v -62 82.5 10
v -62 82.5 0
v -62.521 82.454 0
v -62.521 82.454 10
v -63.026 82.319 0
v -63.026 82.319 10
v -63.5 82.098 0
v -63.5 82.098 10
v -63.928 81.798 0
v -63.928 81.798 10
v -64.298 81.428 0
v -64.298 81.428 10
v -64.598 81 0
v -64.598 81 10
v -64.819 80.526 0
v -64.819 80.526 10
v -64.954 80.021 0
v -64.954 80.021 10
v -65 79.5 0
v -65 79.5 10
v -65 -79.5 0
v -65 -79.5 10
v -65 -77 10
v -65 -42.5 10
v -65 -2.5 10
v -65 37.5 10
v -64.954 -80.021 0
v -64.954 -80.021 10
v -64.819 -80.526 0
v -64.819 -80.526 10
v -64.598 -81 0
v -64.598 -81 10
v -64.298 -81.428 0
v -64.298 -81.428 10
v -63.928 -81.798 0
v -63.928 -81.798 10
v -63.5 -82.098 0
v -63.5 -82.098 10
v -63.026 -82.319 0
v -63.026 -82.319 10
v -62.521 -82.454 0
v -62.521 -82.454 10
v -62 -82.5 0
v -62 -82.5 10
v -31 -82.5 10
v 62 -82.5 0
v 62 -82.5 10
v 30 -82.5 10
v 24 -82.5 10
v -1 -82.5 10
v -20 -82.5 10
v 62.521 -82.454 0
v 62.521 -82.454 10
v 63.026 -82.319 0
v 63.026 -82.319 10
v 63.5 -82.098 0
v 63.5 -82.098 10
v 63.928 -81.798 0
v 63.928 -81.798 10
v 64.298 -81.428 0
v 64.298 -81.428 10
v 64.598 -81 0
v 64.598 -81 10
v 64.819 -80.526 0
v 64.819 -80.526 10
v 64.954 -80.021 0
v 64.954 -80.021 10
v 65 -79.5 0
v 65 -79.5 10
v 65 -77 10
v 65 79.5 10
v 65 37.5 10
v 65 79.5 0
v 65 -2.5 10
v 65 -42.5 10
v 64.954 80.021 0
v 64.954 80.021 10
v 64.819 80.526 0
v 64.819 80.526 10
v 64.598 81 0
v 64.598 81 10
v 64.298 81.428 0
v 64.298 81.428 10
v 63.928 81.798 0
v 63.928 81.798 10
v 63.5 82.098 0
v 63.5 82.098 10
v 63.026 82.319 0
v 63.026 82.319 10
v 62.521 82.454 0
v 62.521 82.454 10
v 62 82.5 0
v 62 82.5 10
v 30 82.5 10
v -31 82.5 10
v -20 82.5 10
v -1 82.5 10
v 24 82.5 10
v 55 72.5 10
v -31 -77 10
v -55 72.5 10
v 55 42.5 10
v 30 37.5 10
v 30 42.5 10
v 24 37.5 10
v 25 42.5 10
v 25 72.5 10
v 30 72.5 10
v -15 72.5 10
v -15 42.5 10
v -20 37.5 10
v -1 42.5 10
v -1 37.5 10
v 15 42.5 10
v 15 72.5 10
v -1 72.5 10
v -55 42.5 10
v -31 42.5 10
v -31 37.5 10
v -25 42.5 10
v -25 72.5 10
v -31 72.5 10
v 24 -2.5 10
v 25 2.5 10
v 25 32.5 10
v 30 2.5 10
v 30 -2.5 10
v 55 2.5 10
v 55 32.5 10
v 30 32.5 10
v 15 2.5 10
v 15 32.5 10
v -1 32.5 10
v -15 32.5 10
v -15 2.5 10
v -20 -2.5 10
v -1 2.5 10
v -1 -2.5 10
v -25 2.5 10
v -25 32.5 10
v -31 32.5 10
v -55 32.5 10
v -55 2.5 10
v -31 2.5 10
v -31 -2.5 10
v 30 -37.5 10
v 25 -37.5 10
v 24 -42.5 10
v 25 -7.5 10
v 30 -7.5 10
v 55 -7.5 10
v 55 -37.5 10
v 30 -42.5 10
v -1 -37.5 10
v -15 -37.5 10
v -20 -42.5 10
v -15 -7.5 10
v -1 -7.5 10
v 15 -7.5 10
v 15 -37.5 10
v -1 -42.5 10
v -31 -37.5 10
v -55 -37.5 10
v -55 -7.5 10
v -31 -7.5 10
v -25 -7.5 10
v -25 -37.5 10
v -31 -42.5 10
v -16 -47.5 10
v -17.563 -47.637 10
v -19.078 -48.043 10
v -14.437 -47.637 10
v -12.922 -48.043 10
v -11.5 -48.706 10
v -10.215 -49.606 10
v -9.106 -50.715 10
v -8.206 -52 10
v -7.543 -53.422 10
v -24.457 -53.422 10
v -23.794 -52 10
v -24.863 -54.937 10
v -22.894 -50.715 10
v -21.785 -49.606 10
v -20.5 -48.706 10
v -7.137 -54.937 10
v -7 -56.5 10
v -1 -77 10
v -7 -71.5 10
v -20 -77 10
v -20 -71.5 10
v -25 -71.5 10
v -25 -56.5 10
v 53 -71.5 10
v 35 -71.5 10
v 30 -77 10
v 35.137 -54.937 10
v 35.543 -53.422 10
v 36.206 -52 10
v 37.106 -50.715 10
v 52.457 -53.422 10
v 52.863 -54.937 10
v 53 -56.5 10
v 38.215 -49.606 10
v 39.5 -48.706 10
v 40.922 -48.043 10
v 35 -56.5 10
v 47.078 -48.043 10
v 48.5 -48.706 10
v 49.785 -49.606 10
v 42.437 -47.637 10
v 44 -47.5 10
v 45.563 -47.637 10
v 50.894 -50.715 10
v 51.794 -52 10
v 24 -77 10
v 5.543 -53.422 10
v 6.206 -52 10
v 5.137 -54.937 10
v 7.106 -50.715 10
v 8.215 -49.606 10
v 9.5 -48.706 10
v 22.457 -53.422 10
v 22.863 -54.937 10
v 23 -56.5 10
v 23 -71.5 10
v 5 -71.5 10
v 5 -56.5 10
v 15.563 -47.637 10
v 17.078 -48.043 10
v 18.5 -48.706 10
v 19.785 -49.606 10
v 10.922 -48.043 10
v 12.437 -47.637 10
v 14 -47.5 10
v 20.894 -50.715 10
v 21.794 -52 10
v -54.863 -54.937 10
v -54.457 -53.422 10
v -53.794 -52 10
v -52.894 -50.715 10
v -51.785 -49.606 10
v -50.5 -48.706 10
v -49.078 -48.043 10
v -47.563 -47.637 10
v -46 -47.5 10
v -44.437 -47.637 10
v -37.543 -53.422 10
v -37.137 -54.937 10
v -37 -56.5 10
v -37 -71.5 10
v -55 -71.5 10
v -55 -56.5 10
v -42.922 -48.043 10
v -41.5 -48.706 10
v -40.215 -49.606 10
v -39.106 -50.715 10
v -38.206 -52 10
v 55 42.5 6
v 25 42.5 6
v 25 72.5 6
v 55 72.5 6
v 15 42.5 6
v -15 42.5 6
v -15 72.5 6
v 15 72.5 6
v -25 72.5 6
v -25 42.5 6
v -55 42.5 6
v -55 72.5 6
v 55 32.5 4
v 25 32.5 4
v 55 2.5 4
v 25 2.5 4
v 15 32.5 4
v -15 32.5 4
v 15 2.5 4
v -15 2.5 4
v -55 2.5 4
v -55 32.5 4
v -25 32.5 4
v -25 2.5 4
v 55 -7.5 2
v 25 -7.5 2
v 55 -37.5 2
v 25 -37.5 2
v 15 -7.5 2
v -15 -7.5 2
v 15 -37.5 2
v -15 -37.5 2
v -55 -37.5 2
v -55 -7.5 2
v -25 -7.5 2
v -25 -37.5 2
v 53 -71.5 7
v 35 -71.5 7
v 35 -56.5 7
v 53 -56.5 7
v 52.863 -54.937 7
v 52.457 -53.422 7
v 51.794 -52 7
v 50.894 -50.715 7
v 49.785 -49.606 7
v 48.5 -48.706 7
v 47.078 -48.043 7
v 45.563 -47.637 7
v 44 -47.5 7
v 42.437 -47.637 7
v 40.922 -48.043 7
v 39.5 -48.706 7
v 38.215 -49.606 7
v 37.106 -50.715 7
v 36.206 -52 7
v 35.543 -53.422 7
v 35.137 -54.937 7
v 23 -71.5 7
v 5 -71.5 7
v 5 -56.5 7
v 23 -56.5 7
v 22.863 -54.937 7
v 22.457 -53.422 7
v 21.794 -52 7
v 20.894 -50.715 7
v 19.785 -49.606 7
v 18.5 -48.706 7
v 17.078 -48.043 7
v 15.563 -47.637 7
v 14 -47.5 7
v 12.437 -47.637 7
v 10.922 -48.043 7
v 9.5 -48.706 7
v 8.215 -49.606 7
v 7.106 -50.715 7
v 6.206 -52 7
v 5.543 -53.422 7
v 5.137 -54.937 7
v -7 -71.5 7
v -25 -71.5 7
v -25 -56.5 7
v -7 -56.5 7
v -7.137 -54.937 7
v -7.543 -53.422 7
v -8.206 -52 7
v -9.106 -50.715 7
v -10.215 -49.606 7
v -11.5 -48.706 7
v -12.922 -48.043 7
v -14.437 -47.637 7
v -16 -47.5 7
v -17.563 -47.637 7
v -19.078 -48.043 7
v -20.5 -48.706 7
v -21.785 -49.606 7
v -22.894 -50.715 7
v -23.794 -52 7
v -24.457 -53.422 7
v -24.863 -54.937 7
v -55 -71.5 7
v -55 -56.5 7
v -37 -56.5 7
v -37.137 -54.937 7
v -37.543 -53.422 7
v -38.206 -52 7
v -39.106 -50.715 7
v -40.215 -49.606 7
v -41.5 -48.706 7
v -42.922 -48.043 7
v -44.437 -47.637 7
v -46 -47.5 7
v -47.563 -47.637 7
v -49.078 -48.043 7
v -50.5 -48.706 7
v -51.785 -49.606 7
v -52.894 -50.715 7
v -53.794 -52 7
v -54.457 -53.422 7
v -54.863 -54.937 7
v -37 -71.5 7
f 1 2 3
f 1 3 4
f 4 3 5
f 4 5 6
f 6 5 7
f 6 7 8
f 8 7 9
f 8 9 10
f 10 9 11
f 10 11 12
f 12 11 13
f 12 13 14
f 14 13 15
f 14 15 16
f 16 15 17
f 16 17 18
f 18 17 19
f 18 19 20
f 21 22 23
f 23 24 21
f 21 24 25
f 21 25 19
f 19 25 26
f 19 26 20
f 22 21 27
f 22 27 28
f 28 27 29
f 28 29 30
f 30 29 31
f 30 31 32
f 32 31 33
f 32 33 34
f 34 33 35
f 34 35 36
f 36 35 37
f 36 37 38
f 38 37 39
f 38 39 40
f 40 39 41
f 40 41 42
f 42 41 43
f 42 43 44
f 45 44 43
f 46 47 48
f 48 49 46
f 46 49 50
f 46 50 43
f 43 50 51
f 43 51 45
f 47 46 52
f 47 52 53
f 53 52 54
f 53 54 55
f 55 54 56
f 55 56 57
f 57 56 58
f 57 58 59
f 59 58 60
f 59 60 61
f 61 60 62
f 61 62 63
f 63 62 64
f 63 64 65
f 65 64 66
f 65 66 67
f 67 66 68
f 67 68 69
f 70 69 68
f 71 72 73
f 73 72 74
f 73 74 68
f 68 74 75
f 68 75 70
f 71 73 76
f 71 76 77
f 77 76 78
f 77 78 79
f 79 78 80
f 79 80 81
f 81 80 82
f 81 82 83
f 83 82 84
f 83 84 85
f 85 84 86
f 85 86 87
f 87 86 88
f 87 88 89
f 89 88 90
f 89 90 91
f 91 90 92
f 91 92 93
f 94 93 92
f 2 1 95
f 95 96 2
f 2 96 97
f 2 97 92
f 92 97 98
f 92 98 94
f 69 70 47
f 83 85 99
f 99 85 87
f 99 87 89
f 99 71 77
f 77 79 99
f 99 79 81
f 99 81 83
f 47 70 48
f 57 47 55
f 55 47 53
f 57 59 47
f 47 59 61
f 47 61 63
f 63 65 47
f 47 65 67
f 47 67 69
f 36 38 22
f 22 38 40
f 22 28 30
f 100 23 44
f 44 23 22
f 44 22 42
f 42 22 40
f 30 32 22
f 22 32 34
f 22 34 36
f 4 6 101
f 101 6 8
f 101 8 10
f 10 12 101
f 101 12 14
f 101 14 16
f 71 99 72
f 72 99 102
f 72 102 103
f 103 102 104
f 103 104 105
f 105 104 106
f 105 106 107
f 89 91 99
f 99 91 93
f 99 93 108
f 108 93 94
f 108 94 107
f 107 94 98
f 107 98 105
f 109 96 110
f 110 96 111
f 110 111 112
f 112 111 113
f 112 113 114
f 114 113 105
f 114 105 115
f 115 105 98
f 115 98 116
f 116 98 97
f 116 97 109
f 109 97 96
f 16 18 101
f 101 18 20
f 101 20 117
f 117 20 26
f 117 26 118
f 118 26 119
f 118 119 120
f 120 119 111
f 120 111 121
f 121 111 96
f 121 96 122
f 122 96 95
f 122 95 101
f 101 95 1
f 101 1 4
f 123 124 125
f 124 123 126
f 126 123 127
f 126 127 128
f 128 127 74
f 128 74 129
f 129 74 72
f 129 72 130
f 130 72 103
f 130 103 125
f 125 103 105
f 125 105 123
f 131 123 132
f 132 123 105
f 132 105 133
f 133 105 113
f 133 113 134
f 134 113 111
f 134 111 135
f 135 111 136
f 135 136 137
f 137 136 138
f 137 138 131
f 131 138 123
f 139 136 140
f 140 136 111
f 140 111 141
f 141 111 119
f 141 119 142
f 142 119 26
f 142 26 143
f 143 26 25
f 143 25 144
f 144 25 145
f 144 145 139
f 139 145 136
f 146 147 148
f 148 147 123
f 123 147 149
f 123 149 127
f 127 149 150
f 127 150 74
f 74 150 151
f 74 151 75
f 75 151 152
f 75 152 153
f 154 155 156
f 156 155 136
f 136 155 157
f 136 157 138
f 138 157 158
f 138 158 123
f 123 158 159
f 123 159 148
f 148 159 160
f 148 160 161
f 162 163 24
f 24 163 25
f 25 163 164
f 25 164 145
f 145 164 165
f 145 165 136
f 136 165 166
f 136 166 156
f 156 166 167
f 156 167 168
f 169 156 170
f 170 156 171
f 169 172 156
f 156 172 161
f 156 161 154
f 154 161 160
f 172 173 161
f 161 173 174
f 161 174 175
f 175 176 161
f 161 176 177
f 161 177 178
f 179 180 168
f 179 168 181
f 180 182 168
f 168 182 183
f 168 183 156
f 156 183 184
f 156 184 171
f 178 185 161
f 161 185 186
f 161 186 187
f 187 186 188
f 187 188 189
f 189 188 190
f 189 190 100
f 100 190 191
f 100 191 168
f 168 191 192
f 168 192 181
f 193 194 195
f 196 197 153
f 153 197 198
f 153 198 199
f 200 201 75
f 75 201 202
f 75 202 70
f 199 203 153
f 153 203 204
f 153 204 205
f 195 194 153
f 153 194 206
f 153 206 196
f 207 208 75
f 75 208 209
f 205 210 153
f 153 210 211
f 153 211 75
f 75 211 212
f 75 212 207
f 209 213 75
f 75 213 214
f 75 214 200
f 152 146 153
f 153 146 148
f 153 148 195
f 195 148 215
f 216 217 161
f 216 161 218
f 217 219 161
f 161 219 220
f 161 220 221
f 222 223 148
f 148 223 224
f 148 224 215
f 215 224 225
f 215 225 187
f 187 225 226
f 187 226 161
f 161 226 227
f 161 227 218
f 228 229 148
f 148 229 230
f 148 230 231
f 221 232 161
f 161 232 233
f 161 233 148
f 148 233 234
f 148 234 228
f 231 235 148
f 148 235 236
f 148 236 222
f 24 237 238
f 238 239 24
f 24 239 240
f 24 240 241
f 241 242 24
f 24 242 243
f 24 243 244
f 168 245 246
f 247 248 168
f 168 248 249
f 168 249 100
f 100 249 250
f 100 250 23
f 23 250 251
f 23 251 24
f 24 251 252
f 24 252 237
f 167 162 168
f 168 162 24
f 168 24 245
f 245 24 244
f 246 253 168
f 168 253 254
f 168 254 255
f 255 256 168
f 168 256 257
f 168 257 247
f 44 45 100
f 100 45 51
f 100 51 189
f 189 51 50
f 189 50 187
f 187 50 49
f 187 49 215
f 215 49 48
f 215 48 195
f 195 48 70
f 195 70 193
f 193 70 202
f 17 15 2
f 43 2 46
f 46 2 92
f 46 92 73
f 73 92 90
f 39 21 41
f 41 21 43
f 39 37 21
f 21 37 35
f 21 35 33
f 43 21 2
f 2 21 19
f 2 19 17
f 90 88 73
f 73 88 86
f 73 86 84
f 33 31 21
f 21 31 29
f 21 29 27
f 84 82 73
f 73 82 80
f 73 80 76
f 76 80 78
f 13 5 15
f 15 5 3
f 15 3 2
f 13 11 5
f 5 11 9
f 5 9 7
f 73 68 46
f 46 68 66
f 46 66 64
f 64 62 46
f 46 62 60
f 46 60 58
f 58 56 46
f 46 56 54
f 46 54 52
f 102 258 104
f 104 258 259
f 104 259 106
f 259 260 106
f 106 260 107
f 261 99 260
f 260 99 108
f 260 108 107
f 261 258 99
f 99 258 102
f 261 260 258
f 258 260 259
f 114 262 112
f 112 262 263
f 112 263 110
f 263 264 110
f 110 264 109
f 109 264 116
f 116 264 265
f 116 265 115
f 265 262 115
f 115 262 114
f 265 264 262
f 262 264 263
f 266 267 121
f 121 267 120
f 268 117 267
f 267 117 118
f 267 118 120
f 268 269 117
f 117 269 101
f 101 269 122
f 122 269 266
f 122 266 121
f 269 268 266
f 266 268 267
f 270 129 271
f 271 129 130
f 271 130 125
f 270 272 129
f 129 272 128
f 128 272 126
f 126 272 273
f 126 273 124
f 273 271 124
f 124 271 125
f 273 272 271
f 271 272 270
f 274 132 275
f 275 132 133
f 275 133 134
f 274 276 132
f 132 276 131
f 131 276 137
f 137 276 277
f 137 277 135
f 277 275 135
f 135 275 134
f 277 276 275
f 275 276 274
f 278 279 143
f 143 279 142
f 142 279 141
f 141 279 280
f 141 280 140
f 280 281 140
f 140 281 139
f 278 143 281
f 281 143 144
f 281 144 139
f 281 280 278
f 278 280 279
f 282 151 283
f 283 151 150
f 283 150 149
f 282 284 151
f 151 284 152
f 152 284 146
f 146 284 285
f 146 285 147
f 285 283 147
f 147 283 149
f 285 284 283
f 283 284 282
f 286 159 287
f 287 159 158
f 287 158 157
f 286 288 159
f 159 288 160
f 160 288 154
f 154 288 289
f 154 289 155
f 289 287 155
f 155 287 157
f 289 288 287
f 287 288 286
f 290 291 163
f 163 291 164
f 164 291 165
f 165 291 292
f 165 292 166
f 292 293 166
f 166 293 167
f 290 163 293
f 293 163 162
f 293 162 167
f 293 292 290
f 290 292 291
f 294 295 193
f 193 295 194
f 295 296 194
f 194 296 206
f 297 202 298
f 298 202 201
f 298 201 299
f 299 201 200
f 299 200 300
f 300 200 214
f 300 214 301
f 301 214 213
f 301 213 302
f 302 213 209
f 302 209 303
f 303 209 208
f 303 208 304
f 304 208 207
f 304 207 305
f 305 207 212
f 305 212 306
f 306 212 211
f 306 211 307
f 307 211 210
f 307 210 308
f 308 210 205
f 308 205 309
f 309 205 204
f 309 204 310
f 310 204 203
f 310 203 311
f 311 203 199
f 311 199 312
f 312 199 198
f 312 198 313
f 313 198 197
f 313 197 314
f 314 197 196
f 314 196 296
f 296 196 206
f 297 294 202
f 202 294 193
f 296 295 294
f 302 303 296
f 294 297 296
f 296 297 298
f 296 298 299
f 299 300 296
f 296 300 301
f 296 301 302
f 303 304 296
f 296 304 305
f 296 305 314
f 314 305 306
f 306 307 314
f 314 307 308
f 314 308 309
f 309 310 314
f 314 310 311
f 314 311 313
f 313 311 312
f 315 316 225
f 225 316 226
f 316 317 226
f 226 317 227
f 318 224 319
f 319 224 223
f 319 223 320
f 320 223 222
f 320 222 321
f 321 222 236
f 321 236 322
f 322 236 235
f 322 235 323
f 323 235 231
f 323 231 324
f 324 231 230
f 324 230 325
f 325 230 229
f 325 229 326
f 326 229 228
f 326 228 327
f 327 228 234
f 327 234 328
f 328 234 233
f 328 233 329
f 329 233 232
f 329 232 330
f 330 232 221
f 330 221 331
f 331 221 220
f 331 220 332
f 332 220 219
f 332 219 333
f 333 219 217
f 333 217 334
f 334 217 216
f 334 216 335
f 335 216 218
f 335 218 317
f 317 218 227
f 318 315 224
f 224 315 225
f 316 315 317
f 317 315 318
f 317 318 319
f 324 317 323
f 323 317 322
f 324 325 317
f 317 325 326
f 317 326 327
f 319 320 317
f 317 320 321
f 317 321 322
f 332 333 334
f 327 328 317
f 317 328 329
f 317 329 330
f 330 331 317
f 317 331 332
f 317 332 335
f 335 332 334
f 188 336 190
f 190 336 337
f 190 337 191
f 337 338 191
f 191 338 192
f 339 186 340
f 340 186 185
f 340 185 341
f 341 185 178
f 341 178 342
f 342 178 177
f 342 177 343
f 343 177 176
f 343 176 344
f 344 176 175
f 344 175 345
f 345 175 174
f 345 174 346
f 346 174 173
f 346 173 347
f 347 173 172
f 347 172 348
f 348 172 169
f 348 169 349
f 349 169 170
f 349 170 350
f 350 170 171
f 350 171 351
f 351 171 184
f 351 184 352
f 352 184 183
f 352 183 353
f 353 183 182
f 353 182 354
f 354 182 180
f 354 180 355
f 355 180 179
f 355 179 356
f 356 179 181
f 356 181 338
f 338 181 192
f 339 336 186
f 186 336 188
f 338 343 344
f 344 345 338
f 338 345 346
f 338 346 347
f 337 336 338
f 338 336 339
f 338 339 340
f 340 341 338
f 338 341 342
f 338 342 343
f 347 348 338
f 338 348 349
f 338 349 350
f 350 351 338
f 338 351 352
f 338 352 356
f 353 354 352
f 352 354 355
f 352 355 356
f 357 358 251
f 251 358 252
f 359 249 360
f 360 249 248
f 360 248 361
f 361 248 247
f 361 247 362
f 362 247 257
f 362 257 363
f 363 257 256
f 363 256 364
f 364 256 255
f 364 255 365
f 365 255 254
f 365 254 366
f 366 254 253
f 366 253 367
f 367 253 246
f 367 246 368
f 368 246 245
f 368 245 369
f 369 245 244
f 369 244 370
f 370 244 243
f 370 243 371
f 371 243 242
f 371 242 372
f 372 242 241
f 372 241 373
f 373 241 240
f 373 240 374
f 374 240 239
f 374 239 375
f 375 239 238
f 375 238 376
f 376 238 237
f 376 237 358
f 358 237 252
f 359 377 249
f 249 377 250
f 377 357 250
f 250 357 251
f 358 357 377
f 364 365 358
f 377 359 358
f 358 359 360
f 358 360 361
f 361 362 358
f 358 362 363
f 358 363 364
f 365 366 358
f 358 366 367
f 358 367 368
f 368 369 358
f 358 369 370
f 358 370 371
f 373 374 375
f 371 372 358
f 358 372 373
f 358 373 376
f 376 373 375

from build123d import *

# Parameters (mm, degrees)
EXTRUDE_1_DEPTH     = 10
SKETCH_6_W          = 30
SKETCH_6_H          = 30
CUT_EXTRUDE_1_DEPTH = 4
SKETCH_7_W          = 30
SKETCH_7_H          = 30
CUT_EXTRUDE_2_DEPTH = 6
SKETCH_8_W          = 30
SKETCH_8_H          = 30
CUT_EXTRUDE_3_DEPTH = 8
CUT_EXTRUDE_4_DEPTH = 3


with BuildPart() as part:
    # 草图1 → 凸台-拉伸1 (new body)
    with BuildSketch(Plane.XY):
        with BuildLine():
            Line((62, -82.5), (-62, -82.5))
            ThreePointArc((-62, -82.5), (-64.121320344, -81.621320344), (-65, -79.5))
            Line((-65, -79.5), (-65, 79.5))
            ThreePointArc((-65, 79.5), (-64.121320344, 81.621320344), (-62, 82.5))
            Line((-62, 82.5), (62, 82.5))
            ThreePointArc((62, 82.5), (64.121320344, 81.621320344), (65, 79.5))
            Line((65, 79.5), (65, -79.5))
            ThreePointArc((65, -79.5), (64.121320344, -81.621320344), (62, -82.5))
        make_face()
    extrude(amount=EXTRUDE_1_DEPTH)

    # 草图6 → 切除-拉伸1 (cut)
    with BuildSketch(Plane.XY.offset(10)):
        with Locations((-40, 57.5)):
            Rectangle(SKETCH_6_W, SKETCH_6_H)
        with Locations((0, 57.5)):
            Rectangle(SKETCH_6_W, SKETCH_6_H)
        with Locations((40, 57.5)):
            Rectangle(SKETCH_6_W, SKETCH_6_H)
    extrude(amount=-CUT_EXTRUDE_1_DEPTH, mode=Mode.SUBTRACT)

    # 草图7 → 切除-拉伸2 (cut)
    with BuildSketch(Plane.XY.offset(10)):
        with Locations((-40, 17.5)):
            Rectangle(SKETCH_7_W, SKETCH_7_H)
        with Locations((0, 17.5)):
            Rectangle(SKETCH_7_W, SKETCH_7_H)
        with Locations((40, 17.5)):
            Rectangle(SKETCH_7_W, SKETCH_7_H)
    extrude(amount=-CUT_EXTRUDE_2_DEPTH, mode=Mode.SUBTRACT)

    # 草图8 → 切除-拉伸3 (cut)
    with BuildSketch(Plane.XY.offset(10)):
        with Locations((-40, -22.5)):
            Rectangle(SKETCH_8_W, SKETCH_8_H)
        with Locations((0, -22.5)):
            Rectangle(SKETCH_8_W, SKETCH_8_H)
        with Locations((40, -22.5)):
            Rectangle(SKETCH_8_W, SKETCH_8_H)
    extrude(amount=-CUT_EXTRUDE_3_DEPTH, mode=Mode.SUBTRACT)

    # 草图9 → 切除-拉伸4 (cut)
    with BuildSketch(Plane.XY.offset(10)):
        with BuildLine():
            Line((-55, -71.5), (-37, -71.5))
            Line((-37, -71.5), (-37, -56.5))
            ThreePointArc((-37, -56.5), (-46, -47.5), (-55, -56.5))
            Line((-55, -56.5), (-55, -71.5))
        make_face()
        with BuildLine():
            Line((-25, -56.5), (-25, -71.5))
            Line((-25, -71.5), (-7, -71.5))
            Line((-7, -71.5), (-7, -56.5))
            ThreePointArc((-7, -56.5), (-16, -47.5), (-25, -56.5))
        make_face()
        with BuildLine():
            Line((5, -56.5), (5, -71.5))
            Line((5, -71.5), (23, -71.5))
            Line((23, -71.5), (23, -56.5))
            ThreePointArc((23, -56.5), (14, -47.5), (5, -56.5))
        make_face()
        with BuildLine():
            Line((35, -56.5), (35, -71.5))
            Line((35, -71.5), (53, -71.5))
            Line((53, -71.5), (53, -56.5))
            ThreePointArc((53, -56.5), (44, -47.5), (35, -56.5))
        make_face()
    extrude(amount=-CUT_EXTRUDE_4_DEPTH, mode=Mode.SUBTRACT)


solid = part.part
